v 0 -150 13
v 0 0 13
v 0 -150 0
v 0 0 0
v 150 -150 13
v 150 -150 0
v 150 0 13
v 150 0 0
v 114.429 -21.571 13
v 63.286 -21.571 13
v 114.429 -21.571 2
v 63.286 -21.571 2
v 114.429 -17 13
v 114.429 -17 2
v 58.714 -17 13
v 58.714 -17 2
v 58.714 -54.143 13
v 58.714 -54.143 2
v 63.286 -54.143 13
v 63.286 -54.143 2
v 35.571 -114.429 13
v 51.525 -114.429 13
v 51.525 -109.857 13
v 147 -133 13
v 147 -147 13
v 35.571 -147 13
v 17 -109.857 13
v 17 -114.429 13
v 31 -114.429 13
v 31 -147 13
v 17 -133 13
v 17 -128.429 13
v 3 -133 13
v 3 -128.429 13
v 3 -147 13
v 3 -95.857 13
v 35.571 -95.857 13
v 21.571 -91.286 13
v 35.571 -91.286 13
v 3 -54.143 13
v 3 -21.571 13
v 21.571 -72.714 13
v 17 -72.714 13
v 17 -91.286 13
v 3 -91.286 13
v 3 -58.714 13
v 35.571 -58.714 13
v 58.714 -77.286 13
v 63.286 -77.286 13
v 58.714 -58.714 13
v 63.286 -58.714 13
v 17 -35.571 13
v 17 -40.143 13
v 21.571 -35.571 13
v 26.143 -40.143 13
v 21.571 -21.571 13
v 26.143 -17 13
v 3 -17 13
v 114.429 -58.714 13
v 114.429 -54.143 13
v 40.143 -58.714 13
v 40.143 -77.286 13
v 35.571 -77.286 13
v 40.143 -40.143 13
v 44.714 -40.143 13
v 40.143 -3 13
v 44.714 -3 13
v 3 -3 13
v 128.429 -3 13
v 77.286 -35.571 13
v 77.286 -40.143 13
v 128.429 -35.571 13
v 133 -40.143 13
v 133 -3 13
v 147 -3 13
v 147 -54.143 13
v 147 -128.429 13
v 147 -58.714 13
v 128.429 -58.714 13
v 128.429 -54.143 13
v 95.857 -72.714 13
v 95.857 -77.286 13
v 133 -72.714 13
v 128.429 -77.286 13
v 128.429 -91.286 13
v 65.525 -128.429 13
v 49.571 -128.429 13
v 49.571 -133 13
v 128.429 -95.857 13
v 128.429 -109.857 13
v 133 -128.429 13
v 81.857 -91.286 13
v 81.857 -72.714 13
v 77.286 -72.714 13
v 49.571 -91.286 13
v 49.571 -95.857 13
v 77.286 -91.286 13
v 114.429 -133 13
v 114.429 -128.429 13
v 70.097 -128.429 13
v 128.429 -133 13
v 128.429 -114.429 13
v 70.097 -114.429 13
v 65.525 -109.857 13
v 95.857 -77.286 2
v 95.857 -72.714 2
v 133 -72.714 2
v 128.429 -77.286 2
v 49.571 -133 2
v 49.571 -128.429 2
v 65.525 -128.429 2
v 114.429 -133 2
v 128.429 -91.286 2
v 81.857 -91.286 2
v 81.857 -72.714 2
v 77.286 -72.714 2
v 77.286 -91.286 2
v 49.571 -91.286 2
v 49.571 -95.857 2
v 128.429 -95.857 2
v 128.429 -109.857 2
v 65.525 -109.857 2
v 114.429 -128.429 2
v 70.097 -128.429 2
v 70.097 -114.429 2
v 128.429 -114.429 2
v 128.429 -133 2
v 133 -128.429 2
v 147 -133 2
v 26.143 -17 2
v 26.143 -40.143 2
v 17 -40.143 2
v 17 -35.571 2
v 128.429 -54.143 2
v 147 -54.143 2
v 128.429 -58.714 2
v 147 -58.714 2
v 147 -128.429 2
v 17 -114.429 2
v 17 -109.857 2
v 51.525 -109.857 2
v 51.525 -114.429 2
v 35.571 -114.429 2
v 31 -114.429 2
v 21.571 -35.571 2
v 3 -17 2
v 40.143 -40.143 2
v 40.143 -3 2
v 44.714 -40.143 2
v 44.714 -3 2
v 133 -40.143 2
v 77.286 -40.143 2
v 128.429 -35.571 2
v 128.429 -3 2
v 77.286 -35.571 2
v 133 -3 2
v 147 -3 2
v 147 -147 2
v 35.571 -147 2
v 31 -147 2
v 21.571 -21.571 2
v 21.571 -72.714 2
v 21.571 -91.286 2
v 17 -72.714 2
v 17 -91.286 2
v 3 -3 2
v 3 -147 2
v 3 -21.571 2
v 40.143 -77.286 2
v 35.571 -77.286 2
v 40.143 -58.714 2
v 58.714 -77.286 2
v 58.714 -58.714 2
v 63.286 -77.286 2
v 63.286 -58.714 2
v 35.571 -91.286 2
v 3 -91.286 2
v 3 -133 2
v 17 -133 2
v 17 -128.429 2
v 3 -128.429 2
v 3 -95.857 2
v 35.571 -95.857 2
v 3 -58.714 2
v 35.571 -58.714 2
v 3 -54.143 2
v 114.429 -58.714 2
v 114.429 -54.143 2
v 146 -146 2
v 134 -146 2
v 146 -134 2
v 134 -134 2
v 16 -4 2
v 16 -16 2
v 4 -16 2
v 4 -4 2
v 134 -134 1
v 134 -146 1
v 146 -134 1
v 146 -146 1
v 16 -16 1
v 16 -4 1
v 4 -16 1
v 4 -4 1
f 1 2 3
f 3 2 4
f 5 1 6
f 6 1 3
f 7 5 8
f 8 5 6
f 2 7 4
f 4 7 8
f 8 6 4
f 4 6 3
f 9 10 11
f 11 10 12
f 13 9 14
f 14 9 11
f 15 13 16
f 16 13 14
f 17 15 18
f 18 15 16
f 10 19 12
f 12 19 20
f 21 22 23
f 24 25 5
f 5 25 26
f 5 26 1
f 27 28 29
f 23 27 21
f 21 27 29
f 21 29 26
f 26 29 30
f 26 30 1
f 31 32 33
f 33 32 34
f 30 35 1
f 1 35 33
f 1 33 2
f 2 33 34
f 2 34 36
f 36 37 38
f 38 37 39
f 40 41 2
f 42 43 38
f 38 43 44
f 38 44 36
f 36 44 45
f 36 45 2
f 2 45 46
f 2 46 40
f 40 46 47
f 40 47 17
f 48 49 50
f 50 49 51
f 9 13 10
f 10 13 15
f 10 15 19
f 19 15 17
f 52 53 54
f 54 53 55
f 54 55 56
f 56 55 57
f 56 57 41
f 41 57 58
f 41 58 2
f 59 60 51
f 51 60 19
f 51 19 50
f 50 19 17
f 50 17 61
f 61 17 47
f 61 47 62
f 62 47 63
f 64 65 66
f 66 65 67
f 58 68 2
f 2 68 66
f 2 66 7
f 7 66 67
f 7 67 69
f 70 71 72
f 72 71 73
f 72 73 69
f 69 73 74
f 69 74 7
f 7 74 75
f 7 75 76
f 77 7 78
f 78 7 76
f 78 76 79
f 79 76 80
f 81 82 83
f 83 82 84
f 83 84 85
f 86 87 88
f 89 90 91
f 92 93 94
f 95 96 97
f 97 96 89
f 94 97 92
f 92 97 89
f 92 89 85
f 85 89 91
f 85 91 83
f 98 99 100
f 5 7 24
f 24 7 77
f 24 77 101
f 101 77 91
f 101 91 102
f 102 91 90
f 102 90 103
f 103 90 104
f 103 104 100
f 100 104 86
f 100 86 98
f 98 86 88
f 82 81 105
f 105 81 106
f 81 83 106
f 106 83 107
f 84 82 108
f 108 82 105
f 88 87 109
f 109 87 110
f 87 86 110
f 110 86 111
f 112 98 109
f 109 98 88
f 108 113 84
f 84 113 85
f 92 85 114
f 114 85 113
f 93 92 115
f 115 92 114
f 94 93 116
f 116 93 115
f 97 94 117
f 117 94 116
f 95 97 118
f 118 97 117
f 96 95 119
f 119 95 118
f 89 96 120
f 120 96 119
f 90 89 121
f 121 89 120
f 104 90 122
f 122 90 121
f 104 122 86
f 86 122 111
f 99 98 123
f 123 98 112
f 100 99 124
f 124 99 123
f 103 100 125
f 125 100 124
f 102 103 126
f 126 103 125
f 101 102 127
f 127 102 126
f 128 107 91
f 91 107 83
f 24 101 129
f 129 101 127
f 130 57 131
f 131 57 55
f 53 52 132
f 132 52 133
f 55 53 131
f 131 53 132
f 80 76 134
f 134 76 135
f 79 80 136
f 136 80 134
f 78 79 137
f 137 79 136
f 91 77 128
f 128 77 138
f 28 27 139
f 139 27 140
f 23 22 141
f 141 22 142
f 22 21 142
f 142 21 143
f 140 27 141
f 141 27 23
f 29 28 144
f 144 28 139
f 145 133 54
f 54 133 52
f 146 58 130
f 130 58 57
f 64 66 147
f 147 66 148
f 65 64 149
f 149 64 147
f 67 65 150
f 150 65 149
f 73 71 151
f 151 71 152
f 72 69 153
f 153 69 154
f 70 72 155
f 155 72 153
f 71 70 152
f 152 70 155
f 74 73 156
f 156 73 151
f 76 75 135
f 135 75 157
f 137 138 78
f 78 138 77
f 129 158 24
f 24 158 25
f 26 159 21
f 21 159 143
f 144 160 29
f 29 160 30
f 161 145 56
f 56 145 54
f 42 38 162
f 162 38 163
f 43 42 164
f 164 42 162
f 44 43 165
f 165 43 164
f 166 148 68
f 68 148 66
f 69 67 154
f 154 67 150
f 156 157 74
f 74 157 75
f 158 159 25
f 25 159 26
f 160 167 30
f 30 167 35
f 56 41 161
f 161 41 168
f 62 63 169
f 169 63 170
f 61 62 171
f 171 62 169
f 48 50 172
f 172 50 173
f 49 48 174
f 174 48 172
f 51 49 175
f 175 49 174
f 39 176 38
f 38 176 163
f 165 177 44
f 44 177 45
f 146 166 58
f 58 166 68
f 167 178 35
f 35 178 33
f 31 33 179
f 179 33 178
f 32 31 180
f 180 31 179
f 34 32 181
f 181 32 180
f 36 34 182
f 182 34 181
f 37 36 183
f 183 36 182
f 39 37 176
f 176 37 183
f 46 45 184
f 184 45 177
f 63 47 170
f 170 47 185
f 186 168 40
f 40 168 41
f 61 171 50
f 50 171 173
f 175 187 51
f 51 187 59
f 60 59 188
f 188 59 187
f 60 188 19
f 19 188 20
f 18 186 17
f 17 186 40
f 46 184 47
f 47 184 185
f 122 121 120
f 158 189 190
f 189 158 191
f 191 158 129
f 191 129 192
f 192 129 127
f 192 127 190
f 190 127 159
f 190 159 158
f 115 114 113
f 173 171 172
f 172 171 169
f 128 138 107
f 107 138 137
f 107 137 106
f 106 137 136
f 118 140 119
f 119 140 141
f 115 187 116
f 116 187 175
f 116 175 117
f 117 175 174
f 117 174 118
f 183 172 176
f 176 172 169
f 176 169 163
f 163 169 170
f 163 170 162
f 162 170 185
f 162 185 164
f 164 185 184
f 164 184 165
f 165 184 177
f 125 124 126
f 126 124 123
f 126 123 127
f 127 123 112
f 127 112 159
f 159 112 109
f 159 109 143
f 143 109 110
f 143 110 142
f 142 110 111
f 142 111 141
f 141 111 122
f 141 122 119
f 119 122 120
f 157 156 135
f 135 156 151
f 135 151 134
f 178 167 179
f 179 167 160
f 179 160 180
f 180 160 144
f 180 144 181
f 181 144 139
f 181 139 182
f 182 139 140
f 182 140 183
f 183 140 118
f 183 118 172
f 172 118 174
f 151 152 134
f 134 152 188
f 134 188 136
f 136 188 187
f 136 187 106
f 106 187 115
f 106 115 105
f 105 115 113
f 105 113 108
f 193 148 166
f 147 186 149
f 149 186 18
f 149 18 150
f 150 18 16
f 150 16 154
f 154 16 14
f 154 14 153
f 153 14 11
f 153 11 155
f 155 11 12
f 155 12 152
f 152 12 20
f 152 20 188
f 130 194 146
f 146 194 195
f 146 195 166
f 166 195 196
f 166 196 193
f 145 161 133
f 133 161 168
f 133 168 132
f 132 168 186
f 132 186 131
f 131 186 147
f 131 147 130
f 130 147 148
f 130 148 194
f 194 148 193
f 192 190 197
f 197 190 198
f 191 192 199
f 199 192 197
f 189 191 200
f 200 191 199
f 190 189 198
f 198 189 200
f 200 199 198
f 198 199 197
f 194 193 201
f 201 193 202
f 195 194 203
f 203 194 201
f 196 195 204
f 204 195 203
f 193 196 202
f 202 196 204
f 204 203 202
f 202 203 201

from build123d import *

# Parameters (mm, degrees)
SKETCH2_W           = 150
SKETCH2_H           = 150
BOSS_EXTRUDE1_DEPTH = 2
SKETCH3_W           = 150
SKETCH3_H           = 150
BOSS_EXTRUDE2_DEPTH = 11
SKETCH4_W           = 12
SKETCH4_H           = 12
CUT_EXTRUDE1_DEPTH  = 1


with BuildPart() as part:
    # Sketch2 → Boss-Extrude1 (new body)
    with BuildSketch(Plane.XY):
        with Locations((75, -75)):
            Rectangle(SKETCH2_W, SKETCH2_H)
    extrude(amount=BOSS_EXTRUDE1_DEPTH)

    # Sketch3 → Boss-Extrude2 (add)
    with BuildSketch(Plane.XY.offset(2)):
        with Locations((75, -75)):
            Rectangle(SKETCH3_W, SKETCH3_H)
        Polygon((147, -147), (35.571428571, -147), (35.571428571, -114.428571429), (51.525296988, -114.428571429), (51.525296988, -109.857142857), (17, -109.857142857), (17, -114.428571429), (31, -114.428571429), (31, -147), (3, -147), (3, -133), (17, -133), (17, -128.428571429), (3, -128.428571429), (3, -95.857142857), (35.571428571, -95.857142857), (35.571428571, -91.285714286), (21.571428571, -91.285714286), (21.571428571, -72.714285714), (17, -72.714285714), (17, -91.285714286), (3, -91.285714286), (3, -58.714285714), (35.571428571, -58.714285714), (35.571428571, -77.285714286), (40.142857143, -77.285714286), (40.142857143, -58.714285714), (58.714285714, -58.714285714), (58.714285714, -77.285714286), (63.285714286, -77.285714286), (63.285714286, -58.714285714), (114.428571429, -58.714285714), (114.428571429, -54.142857143), (63.285714286, -54.142857143), (63.285714286, -21.571428571), (114.428571429, -21.571428571), (114.428571429, -17), (58.714285714, -17), (58.714285714, -54.142857143), (3, -54.142857143), (3, -21.571428571), (21.571428571, -21.571428571), (21.571428571, -35.571428571), (17, -35.571428571), (17, -40.142857143), (26.142857143, -40.142857143), (26.142857143, -17), (3, -17), (3, -3), (40.142857143, -3), (40.142857143, -40.142857143), (44.714285714, -40.142857143), (44.714285714, -3), (128.428571429, -3), (128.428571429, -35.571428571), (77.285714286, -35.571428571), (77.285714286, -40.142857143), (133, -40.142857143), (133, -3), (147, -3), (147, -54.142857143), (128.428571429, -54.142857143), (128.428571429, -58.714285714), (147, -58.714285714), (147, -128.428571429), (133, -128.428571429), (133, -72.714285714), (95.857142857, -72.714285714), (95.857142857, -77.285714286), (128.428571429, -77.285714286), (128.428571429, -91.285714286), (81.857142857, -91.285714286), (81.857142857, -72.714285714), (77.285714286, -72.714285714), (77.285714286, -91.285714286), (49.571428571, -91.285714286), (49.571428571, -95.857142857), (128.428571429, -95.857142857), (128.428571429, -109.857142857), (65.525296988, -109.857142857), (65.525296988, -128.428571429), (49.571428571, -128.428571429), (49.571428571, -133), (114.428571429, -133), (114.428571429, -128.428571429), (70.09672556, -128.428571429), (70.09672556, -114.428571429), (128.428571429, -114.428571429), (128.428571429, -133), (147, -133), align=None, mode=Mode.SUBTRACT)
    extrude(amount=BOSS_EXTRUDE2_DEPTH)

    # Sketch4 → Cut-Extrude1 (cut)
    with BuildSketch(Plane.XY.offset(2)):
        with Locations((10, -10)):
            Rectangle(SKETCH4_W, SKETCH4_H)
        with Locations((140, -140)):
            Rectangle(SKETCH4_W, SKETCH4_H)
    extrude(amount=-CUT_EXTRUDE1_DEPTH, mode=Mode.SUBTRACT)


solid = part.part
